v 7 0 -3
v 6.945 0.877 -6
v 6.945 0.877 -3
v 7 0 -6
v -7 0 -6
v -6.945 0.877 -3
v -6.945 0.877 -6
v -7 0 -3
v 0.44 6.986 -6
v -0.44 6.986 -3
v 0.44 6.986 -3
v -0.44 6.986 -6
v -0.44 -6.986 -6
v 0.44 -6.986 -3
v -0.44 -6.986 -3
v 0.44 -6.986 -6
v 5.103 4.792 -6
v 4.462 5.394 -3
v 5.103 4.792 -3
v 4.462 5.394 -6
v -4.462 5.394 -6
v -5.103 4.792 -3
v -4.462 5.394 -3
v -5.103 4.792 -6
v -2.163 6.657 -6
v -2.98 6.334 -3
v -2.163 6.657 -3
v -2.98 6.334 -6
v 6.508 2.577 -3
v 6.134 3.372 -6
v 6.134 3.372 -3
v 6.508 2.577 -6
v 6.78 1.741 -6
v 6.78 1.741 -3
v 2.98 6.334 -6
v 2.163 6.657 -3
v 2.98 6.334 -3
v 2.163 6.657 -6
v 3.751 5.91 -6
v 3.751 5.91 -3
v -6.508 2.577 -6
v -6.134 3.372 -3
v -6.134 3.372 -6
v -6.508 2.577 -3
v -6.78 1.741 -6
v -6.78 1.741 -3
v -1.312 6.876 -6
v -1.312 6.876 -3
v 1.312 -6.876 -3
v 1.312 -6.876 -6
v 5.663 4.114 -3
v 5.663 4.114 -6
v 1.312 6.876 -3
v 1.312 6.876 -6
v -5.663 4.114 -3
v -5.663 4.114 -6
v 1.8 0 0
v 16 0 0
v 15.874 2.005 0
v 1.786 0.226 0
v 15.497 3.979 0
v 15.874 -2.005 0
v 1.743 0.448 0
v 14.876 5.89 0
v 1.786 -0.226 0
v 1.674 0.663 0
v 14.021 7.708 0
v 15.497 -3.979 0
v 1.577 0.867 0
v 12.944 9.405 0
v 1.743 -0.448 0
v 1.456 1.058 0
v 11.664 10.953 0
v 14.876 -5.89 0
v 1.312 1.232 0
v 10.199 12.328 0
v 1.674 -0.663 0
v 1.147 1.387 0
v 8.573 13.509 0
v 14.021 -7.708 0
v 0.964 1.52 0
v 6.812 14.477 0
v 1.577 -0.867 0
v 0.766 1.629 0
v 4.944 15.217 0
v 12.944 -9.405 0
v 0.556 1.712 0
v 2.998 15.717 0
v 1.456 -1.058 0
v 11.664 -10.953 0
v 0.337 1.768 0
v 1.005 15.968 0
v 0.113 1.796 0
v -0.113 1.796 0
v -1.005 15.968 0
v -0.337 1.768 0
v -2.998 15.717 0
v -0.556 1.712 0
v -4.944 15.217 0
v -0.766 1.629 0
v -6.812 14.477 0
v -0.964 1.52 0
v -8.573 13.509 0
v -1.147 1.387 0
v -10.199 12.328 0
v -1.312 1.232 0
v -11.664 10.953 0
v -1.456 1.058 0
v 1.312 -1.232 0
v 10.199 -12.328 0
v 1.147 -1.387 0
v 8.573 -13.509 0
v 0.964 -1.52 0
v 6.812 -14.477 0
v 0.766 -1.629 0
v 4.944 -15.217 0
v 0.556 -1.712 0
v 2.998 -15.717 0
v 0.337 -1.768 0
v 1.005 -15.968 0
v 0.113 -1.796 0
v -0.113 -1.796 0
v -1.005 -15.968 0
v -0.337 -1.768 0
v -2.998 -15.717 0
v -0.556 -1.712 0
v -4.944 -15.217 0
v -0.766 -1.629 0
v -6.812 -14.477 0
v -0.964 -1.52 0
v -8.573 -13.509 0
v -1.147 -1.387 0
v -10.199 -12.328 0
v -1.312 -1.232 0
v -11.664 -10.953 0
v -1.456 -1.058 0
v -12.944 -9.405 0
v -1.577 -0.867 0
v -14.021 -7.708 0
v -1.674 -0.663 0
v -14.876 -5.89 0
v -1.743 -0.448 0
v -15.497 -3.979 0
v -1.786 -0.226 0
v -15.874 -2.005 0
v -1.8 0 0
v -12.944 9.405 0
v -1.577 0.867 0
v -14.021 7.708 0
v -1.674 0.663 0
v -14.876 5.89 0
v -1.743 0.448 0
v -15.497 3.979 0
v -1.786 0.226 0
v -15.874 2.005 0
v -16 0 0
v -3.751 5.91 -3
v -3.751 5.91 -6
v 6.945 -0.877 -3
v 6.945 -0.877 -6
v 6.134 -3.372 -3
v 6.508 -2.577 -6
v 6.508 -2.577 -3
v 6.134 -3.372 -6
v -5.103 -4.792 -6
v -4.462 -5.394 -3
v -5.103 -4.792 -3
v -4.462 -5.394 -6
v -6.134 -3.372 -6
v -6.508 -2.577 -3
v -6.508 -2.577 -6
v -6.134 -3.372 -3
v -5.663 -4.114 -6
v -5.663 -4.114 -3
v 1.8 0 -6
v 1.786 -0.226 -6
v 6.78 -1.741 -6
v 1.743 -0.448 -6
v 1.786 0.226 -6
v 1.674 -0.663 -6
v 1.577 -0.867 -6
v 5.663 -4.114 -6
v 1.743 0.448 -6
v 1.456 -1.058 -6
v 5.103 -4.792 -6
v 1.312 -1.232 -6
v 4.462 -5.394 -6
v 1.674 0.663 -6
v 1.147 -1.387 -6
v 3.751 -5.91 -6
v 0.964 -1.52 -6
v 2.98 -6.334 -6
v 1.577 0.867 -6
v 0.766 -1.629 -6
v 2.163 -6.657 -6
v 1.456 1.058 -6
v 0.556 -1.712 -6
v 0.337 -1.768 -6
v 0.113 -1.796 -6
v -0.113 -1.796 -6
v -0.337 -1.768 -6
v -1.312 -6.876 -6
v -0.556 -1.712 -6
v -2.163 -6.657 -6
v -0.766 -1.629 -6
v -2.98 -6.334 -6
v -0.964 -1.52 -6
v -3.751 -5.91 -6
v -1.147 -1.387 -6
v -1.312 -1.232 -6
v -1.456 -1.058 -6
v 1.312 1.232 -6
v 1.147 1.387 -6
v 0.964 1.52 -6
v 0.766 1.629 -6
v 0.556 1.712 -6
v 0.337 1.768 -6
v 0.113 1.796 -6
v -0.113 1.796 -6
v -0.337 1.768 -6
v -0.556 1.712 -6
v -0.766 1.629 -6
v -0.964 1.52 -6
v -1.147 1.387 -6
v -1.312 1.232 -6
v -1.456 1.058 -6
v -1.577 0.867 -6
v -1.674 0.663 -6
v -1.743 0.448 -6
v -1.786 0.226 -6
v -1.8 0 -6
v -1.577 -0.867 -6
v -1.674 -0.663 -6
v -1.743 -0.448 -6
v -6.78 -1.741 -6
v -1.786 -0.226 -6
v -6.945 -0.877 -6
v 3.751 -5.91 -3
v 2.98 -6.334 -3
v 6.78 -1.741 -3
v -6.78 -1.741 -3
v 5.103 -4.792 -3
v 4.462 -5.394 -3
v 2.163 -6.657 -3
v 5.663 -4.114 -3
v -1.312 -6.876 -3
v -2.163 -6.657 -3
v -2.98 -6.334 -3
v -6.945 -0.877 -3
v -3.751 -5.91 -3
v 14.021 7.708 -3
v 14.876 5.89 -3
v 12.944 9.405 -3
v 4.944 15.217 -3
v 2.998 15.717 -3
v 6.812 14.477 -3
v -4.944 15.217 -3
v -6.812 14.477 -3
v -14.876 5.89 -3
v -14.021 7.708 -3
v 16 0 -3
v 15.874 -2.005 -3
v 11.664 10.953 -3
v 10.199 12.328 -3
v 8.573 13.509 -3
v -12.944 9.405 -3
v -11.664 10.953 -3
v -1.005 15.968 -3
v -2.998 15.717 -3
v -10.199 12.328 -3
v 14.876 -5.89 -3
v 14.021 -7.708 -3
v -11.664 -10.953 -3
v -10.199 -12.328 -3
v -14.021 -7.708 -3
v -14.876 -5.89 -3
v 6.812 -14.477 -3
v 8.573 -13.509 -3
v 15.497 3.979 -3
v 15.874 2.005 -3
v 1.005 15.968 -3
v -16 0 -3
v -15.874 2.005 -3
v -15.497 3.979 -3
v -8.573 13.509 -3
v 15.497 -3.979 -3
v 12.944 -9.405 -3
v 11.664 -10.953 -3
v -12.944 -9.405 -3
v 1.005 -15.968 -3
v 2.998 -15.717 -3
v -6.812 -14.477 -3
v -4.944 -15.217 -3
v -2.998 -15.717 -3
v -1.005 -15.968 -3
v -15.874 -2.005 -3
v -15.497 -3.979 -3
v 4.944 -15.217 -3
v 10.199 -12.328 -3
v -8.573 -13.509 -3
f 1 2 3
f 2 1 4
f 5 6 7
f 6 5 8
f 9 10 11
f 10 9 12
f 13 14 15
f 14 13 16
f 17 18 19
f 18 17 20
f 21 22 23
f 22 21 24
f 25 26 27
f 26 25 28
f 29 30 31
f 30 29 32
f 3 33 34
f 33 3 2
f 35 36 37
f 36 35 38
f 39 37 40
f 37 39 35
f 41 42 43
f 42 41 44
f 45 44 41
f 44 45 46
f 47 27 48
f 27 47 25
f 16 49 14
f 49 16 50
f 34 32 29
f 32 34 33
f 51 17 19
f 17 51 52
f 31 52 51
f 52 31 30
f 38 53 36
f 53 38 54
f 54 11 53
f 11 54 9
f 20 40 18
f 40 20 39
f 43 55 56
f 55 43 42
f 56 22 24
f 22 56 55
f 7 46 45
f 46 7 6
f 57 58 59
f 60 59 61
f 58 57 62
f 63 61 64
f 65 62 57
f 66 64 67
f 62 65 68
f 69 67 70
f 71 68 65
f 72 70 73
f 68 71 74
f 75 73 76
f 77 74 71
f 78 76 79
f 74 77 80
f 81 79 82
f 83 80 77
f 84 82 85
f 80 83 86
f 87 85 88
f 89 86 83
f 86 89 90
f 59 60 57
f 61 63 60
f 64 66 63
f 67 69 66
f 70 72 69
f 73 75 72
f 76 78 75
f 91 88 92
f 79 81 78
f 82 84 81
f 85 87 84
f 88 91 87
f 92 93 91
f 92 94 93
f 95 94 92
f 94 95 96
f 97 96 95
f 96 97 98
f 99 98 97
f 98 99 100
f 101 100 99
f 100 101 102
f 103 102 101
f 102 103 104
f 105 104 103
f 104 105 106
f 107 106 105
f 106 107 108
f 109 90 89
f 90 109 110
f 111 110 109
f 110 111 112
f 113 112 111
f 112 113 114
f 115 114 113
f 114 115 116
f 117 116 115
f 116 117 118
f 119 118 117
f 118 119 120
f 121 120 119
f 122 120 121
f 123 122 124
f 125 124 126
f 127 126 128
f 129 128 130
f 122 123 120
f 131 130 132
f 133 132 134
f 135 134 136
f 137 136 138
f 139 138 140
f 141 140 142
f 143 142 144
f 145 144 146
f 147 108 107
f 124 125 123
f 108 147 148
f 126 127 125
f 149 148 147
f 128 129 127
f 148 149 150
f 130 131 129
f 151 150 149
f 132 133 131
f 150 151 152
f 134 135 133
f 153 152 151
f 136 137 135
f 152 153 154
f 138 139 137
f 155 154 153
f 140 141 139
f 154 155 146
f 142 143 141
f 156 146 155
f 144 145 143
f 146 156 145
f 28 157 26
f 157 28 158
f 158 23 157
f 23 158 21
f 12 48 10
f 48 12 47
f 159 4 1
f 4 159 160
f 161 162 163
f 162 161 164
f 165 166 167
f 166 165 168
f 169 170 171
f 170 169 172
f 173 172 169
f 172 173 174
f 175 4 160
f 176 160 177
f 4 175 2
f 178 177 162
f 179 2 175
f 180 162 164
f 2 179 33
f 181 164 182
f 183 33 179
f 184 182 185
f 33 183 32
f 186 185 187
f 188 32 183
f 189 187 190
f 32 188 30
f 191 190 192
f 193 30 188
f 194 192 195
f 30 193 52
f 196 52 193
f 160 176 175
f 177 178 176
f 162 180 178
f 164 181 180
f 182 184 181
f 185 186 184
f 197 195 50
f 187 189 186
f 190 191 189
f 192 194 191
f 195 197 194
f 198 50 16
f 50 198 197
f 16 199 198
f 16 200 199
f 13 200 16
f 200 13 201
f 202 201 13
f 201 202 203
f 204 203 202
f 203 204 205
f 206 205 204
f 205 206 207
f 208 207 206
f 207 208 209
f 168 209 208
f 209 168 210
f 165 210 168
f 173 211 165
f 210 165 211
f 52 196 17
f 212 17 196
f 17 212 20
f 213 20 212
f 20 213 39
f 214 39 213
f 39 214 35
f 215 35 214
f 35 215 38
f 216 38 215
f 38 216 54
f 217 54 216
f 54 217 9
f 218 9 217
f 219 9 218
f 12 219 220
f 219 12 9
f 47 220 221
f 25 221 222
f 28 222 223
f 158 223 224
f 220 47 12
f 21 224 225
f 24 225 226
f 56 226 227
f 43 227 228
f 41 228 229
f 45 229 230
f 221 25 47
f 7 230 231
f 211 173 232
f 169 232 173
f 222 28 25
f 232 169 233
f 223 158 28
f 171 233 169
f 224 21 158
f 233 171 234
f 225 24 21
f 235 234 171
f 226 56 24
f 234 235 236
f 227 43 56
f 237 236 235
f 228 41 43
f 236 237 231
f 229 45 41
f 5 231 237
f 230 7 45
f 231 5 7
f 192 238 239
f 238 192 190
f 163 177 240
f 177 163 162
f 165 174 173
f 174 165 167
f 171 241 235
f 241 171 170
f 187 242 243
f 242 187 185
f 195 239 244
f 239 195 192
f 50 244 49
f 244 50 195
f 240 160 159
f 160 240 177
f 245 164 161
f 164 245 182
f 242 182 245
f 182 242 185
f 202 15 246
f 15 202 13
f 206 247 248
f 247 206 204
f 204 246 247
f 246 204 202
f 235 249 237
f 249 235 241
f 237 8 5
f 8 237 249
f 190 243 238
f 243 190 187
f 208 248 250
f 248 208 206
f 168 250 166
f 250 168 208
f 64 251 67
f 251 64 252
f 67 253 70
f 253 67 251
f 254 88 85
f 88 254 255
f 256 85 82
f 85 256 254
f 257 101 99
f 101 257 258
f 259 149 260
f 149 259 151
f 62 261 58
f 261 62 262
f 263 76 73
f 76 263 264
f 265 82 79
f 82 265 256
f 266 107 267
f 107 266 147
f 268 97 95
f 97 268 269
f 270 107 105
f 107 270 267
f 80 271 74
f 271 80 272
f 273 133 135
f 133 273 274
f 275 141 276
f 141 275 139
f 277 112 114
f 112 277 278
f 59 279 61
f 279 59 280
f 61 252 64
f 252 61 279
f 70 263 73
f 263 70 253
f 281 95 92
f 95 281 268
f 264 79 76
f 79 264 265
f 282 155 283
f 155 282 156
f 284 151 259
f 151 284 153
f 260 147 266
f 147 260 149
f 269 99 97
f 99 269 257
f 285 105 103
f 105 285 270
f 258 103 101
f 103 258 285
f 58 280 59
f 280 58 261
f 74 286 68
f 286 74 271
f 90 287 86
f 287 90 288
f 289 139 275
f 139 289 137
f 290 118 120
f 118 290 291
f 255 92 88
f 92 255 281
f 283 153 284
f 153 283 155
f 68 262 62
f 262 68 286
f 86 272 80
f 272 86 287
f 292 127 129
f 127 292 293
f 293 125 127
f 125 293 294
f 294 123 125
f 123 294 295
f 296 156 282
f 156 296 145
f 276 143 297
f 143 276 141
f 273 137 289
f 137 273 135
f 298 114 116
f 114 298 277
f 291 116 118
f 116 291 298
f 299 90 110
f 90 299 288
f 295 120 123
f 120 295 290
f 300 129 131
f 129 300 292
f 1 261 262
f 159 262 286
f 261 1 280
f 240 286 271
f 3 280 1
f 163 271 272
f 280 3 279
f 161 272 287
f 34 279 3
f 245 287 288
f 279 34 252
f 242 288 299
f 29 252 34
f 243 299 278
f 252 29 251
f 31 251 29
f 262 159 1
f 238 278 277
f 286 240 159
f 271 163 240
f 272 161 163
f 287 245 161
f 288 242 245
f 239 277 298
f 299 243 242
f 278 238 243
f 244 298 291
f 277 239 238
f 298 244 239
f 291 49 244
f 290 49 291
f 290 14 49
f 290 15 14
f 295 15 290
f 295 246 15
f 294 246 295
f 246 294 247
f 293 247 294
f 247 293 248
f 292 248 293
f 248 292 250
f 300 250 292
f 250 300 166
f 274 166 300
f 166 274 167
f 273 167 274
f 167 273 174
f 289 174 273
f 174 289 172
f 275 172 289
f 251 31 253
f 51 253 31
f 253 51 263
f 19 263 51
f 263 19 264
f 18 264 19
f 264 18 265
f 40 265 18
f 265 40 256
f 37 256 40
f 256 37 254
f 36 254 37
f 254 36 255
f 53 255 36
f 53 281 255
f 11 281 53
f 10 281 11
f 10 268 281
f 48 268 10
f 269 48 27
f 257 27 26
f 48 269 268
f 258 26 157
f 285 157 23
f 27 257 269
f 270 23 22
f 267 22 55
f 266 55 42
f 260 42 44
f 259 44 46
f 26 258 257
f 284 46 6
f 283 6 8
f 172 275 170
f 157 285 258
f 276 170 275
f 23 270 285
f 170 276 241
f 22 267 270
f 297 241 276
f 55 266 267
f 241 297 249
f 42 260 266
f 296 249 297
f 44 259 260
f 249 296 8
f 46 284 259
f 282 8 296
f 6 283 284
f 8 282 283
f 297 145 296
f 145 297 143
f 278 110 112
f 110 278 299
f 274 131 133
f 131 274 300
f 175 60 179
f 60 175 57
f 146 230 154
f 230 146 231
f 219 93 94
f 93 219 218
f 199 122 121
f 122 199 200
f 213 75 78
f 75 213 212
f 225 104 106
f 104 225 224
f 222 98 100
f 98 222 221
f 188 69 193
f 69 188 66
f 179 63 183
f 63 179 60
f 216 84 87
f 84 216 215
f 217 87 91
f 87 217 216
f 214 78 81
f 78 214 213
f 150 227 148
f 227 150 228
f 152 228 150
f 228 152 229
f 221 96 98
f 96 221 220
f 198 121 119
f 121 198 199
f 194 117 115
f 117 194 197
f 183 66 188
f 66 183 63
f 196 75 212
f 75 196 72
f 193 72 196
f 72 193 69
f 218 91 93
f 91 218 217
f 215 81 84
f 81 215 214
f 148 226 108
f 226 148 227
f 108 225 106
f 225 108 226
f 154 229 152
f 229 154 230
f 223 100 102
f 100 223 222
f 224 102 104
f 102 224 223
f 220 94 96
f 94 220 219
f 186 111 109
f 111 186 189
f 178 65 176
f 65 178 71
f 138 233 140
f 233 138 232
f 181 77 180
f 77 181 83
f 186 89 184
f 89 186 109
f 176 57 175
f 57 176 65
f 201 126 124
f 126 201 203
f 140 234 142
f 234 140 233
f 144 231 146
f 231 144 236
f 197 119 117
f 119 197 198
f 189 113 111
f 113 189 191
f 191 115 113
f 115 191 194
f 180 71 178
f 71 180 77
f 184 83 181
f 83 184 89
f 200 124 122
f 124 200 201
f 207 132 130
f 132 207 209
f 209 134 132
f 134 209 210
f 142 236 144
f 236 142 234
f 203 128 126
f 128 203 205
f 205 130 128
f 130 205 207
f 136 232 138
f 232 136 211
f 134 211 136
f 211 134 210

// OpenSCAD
$fn = 50;


difference() {
	union() {
		translate(v = [0, 0, -6.0000000000]) {
			cylinder(h = 6, r = 7.0000000000);
		}
		translate(v = [0, 0, -3.0000000000]) {
			cylinder(h = 3, r = 16.0000000000);
		}
	}
	union() {
		#translate(v = [0, 0, -6]) {
			cylinder(h = 6, r = 1.8000000000);
		}
	}
}
